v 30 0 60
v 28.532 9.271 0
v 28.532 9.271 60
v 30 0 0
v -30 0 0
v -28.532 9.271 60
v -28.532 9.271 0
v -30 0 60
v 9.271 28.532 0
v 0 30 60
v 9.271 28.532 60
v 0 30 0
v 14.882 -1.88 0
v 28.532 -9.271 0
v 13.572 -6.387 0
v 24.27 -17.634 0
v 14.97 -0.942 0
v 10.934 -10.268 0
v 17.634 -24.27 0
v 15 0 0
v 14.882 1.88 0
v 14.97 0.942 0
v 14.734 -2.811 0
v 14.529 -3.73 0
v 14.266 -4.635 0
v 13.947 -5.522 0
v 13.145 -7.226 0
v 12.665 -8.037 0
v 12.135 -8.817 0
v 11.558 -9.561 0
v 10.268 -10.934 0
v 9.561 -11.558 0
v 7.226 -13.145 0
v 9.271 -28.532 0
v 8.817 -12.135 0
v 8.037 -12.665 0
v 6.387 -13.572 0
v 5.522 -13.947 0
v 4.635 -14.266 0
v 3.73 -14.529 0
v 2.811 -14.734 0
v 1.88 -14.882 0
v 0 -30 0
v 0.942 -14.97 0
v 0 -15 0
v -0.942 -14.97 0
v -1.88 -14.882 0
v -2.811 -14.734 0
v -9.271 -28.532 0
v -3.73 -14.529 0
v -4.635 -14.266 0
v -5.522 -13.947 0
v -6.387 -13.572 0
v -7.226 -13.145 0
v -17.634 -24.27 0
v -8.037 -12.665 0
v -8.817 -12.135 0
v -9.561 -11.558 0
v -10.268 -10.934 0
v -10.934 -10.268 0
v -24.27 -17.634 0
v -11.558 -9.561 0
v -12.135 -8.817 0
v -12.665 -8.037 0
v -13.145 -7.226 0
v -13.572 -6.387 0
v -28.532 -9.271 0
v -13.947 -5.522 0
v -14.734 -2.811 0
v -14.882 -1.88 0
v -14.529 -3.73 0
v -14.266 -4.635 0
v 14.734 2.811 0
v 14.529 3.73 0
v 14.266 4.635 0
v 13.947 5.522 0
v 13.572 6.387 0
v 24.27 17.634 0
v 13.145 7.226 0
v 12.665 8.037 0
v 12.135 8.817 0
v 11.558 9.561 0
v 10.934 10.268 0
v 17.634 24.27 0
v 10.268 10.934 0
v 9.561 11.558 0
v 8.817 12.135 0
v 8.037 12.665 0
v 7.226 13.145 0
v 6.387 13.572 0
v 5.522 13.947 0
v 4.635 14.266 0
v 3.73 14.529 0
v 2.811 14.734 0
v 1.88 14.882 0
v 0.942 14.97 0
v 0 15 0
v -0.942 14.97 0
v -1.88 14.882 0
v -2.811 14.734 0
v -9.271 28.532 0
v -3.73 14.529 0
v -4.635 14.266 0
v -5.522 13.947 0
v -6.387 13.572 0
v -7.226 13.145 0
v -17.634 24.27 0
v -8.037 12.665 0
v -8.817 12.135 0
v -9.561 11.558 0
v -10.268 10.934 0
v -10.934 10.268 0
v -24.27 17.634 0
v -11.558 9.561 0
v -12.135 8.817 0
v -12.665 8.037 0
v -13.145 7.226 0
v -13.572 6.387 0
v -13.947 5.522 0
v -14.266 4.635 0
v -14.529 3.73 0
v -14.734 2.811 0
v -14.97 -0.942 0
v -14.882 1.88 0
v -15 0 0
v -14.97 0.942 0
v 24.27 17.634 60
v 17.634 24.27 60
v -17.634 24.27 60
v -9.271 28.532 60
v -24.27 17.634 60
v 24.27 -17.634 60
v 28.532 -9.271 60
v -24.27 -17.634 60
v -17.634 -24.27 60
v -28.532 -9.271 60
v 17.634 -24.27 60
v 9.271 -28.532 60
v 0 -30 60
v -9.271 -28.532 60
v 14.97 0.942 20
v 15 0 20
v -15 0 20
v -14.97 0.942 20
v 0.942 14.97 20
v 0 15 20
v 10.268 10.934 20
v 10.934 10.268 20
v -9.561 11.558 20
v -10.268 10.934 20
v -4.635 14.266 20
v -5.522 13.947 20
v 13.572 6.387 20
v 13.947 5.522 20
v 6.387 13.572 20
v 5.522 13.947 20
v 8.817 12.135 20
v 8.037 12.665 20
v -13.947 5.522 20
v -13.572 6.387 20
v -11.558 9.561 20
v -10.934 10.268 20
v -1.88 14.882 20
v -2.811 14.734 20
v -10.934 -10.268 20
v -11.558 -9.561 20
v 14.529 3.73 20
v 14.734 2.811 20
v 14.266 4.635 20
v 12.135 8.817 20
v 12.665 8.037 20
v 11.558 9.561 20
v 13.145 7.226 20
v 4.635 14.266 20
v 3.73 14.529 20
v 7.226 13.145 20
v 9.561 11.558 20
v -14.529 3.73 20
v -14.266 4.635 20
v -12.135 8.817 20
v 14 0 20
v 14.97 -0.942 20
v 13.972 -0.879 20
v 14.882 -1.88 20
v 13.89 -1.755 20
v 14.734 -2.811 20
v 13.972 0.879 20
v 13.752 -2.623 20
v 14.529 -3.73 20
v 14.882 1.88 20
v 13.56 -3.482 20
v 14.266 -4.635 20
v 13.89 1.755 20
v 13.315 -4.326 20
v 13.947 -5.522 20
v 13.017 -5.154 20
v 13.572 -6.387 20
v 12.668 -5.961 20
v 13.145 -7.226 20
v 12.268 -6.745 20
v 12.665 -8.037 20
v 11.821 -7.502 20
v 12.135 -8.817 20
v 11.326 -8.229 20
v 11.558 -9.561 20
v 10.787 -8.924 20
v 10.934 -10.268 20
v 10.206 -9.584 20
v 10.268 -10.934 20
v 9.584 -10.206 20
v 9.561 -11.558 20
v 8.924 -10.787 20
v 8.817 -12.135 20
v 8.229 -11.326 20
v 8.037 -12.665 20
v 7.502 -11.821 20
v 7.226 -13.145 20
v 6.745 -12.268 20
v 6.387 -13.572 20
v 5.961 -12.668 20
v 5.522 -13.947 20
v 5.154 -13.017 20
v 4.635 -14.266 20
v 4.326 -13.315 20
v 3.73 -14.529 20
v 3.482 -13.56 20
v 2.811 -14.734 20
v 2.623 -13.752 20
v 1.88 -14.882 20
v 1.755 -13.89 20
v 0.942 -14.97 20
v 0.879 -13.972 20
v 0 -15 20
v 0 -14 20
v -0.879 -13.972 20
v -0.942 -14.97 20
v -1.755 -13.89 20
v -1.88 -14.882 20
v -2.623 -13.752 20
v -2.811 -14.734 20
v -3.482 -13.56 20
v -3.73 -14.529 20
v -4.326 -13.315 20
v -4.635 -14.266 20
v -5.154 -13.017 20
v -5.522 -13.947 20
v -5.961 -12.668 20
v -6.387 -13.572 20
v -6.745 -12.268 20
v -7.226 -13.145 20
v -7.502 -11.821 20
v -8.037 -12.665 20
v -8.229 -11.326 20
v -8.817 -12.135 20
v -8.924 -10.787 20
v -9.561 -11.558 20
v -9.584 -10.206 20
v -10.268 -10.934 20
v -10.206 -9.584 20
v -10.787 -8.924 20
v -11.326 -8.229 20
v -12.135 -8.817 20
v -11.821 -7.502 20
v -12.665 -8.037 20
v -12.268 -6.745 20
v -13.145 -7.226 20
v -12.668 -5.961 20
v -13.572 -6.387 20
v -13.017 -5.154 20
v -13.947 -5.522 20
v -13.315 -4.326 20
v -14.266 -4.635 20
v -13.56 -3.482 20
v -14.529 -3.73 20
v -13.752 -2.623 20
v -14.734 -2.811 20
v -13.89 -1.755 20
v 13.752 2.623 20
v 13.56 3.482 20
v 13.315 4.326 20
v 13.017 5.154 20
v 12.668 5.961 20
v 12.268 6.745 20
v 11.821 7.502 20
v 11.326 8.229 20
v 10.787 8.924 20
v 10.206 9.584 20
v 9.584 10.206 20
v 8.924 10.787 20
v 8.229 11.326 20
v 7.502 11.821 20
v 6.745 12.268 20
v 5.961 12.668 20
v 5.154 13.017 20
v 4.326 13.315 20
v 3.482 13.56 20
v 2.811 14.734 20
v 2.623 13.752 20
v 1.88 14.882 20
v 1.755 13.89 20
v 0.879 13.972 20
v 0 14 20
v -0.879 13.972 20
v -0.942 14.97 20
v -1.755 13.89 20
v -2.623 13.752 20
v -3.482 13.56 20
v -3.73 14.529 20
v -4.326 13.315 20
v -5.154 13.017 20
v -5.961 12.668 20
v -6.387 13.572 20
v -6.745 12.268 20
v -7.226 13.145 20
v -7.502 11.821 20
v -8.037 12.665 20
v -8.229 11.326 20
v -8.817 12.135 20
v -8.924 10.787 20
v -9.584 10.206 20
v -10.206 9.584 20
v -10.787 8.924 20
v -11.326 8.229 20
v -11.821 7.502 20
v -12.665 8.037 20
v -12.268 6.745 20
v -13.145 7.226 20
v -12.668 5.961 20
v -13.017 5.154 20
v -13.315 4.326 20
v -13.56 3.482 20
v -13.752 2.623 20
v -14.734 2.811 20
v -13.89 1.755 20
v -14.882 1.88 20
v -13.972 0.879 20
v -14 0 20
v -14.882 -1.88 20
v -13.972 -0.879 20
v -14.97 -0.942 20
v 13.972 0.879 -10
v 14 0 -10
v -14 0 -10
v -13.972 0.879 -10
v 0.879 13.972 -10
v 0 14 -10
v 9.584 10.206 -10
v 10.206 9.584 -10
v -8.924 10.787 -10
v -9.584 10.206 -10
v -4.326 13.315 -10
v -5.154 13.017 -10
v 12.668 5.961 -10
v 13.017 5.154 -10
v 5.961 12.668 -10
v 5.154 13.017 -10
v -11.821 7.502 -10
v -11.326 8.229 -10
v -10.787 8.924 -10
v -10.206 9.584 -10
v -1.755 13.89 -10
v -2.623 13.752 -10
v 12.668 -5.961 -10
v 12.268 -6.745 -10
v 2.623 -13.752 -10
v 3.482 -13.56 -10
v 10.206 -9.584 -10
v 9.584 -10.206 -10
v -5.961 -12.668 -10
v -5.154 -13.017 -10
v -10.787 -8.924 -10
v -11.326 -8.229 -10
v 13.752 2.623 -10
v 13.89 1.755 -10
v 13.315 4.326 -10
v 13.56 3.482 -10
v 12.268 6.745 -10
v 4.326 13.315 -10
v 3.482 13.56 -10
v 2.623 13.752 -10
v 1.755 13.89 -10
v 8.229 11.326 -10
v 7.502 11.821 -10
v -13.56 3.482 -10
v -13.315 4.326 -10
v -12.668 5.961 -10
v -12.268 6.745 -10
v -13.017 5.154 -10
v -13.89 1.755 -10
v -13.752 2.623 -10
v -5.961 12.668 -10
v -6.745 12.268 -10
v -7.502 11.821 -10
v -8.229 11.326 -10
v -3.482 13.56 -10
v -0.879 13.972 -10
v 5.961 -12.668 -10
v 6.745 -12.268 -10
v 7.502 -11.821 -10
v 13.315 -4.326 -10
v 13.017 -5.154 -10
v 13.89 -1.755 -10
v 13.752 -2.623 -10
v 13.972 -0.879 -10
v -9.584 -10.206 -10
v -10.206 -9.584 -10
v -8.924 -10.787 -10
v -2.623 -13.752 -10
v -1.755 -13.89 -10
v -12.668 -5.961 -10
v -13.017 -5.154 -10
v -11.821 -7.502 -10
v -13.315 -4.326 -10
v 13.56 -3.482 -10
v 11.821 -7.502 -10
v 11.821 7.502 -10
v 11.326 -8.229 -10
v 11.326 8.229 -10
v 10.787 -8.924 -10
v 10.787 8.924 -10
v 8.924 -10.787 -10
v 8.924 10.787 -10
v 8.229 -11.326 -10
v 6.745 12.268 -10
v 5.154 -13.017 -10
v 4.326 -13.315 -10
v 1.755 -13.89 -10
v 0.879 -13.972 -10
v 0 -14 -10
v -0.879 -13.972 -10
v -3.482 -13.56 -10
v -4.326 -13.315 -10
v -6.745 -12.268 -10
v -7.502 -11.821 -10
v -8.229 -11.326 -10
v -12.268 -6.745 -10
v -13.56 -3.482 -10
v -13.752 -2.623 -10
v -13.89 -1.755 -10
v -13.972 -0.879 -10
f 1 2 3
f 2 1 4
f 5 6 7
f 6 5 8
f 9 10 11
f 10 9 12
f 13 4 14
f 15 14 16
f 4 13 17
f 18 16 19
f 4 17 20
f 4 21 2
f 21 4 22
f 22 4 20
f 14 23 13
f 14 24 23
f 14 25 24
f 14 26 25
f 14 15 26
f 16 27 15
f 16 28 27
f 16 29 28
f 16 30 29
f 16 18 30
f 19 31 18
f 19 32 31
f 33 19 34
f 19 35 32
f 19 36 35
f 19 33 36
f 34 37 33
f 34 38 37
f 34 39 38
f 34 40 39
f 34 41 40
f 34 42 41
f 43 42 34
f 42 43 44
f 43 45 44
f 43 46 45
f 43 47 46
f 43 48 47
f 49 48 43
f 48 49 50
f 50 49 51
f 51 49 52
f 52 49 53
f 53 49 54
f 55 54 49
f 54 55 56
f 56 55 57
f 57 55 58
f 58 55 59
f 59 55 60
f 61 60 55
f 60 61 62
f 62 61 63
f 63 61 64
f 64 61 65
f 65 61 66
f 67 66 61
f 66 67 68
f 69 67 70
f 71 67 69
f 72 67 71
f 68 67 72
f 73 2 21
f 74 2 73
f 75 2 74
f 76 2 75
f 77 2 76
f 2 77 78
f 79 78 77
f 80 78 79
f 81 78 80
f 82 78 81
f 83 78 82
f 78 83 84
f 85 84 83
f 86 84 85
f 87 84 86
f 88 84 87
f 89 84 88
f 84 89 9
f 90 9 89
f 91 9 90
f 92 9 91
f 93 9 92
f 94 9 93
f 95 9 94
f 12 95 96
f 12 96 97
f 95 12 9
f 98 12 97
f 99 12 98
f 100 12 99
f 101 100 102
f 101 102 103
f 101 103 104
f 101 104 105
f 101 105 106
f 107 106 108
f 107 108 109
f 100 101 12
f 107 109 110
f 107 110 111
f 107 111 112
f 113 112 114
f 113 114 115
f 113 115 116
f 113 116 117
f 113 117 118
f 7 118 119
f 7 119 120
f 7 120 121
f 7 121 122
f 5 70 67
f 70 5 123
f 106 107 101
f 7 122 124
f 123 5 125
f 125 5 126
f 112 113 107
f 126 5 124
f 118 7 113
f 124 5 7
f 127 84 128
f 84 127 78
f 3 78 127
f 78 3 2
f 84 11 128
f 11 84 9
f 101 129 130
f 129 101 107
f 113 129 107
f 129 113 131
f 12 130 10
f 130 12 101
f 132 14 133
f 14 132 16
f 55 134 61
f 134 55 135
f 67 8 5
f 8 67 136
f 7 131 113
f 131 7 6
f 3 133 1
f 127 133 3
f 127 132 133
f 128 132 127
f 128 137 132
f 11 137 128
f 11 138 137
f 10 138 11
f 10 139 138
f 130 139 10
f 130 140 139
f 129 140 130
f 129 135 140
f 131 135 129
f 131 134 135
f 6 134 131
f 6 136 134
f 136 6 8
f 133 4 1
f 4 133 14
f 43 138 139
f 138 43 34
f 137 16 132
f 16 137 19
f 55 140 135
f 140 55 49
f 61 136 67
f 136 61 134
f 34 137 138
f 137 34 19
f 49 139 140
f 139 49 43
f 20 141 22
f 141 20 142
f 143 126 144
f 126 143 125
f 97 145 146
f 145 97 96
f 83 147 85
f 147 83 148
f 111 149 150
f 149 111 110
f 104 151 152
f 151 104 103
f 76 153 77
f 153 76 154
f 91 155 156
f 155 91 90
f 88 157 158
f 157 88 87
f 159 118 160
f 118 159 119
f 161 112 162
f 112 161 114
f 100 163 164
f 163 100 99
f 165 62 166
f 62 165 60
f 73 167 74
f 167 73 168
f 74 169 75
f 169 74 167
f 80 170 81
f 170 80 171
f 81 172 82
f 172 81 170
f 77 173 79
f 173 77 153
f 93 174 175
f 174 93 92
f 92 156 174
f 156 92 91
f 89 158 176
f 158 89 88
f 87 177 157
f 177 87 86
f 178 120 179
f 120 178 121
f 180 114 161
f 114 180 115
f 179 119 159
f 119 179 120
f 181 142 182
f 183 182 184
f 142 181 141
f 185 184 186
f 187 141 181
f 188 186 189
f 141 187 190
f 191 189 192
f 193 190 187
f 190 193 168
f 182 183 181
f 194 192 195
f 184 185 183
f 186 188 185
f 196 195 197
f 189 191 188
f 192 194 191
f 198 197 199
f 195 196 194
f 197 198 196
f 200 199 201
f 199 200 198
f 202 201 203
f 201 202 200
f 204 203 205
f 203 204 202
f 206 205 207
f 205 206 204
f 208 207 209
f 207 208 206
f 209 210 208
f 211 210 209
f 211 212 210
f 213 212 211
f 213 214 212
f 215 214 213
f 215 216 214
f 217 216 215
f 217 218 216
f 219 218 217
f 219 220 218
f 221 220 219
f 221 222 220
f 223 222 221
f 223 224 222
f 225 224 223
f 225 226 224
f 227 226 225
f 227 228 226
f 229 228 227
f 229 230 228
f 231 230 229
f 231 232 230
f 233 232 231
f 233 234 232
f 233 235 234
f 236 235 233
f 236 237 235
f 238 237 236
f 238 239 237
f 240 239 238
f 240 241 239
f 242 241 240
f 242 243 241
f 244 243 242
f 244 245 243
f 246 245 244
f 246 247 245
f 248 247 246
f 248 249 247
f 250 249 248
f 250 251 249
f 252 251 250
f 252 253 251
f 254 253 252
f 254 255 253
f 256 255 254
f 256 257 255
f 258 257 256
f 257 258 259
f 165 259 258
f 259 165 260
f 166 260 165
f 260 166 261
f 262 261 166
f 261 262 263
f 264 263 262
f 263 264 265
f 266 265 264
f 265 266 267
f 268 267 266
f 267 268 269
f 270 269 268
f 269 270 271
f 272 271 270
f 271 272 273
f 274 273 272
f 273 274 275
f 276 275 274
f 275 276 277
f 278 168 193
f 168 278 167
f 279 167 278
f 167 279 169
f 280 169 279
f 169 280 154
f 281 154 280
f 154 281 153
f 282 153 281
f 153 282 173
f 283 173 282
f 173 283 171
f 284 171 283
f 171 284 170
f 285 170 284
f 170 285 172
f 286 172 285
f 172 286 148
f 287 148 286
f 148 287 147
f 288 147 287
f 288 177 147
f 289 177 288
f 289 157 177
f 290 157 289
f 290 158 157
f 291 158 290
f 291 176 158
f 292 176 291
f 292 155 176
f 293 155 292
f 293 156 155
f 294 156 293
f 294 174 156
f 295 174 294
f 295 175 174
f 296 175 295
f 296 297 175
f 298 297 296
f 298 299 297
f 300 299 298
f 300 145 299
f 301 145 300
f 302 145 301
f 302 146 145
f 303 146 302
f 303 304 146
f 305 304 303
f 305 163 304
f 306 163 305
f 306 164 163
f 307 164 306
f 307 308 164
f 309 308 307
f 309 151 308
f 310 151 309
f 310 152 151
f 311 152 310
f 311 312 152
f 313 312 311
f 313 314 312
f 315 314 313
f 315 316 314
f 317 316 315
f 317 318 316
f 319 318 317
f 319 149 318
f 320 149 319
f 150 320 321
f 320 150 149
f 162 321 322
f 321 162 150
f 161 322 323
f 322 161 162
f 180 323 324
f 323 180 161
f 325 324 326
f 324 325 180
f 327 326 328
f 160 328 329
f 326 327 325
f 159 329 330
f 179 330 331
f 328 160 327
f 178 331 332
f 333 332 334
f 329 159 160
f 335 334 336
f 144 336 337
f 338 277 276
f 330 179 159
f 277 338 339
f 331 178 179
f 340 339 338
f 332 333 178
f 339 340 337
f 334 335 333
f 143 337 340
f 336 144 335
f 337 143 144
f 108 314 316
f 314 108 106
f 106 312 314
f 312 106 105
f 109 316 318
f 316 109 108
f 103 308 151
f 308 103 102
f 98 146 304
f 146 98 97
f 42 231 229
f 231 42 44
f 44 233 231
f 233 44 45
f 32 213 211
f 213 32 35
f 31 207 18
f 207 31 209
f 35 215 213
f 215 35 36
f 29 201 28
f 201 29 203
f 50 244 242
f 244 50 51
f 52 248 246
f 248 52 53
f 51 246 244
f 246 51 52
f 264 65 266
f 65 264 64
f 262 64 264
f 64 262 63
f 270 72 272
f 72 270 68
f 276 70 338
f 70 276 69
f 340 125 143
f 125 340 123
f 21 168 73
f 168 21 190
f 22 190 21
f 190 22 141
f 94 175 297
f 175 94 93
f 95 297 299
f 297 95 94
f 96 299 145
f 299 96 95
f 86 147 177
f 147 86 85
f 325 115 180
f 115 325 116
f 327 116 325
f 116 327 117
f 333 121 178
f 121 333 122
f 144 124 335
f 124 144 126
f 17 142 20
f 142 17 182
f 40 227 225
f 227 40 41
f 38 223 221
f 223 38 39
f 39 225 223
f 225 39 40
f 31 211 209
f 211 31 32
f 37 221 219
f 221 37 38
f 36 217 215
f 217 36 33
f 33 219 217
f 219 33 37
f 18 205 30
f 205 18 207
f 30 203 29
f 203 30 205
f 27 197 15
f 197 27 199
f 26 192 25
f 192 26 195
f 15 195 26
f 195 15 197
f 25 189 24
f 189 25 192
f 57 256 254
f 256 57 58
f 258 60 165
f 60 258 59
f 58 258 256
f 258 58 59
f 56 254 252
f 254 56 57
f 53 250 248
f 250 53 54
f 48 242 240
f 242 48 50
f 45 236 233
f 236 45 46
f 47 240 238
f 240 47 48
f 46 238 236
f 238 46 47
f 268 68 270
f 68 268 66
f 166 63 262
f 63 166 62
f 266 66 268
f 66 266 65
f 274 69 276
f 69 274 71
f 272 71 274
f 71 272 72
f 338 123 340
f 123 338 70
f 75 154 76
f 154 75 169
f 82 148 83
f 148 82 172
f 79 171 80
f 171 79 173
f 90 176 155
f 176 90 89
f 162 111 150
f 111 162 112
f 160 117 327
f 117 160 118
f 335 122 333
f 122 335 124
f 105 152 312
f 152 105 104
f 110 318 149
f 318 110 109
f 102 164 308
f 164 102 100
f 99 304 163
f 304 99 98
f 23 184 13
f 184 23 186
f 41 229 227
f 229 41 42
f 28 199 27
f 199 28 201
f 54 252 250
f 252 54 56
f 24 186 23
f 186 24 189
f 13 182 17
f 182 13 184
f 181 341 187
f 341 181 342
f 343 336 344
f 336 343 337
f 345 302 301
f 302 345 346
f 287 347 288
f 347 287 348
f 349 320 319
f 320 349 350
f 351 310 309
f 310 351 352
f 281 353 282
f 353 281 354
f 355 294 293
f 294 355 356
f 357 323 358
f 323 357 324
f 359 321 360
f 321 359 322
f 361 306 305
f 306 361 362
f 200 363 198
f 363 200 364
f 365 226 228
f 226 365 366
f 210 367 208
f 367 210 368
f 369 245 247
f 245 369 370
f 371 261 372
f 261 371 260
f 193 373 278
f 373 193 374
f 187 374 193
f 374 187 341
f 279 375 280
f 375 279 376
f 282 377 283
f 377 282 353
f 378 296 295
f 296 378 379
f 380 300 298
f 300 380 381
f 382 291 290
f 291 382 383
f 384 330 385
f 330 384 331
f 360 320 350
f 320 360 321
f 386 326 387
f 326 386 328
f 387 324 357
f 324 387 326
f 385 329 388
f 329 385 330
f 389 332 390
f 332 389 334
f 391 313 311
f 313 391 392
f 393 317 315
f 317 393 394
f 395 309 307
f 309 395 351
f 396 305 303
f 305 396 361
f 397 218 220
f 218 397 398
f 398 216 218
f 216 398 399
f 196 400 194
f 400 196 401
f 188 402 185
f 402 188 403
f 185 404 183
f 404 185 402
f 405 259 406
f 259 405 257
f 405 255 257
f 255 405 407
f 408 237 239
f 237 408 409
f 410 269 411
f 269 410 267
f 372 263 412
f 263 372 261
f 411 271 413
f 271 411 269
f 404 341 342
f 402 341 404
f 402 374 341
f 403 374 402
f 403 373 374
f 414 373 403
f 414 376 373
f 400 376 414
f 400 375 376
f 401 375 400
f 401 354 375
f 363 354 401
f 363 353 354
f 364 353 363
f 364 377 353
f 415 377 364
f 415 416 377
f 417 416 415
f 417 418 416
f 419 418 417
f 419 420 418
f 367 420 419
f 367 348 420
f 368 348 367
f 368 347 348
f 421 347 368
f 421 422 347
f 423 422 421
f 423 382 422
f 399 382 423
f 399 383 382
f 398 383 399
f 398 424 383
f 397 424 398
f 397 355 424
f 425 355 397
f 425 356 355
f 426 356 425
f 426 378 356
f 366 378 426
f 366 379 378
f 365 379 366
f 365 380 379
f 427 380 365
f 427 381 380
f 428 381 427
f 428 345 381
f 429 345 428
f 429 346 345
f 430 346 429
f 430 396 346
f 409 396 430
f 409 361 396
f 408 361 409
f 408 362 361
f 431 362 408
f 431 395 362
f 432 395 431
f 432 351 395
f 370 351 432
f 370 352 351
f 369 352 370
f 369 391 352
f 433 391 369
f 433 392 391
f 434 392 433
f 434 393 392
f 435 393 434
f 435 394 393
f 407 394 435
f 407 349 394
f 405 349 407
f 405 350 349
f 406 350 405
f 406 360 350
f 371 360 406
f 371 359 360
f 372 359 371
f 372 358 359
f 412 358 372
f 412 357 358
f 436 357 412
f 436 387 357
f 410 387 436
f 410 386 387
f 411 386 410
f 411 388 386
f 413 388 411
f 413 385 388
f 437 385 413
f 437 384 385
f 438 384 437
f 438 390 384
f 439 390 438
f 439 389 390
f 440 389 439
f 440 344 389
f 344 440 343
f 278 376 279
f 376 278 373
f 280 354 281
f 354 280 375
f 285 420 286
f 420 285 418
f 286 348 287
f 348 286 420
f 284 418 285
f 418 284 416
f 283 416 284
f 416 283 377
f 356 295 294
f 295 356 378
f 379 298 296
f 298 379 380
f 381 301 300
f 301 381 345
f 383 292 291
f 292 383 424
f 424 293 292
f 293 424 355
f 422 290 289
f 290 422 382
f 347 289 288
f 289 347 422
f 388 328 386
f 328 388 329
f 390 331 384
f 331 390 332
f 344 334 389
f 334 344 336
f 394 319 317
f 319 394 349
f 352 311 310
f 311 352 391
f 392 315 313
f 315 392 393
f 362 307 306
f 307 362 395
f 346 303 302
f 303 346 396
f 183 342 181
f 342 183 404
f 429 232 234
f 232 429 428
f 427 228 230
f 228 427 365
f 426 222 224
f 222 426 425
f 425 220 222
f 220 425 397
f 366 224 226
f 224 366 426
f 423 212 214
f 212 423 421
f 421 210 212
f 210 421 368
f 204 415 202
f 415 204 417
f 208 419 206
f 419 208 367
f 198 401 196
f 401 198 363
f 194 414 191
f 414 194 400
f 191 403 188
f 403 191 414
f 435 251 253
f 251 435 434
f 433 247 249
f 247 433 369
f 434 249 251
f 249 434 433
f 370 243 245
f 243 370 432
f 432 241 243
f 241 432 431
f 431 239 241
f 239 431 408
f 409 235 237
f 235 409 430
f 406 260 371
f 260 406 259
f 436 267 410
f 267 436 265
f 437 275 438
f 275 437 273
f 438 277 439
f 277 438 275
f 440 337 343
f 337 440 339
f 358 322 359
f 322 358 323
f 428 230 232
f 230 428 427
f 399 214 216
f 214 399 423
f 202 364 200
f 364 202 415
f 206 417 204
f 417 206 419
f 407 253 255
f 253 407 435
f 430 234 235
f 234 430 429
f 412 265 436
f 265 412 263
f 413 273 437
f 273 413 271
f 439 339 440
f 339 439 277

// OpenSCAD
// Parameters
outer_diameter = 60;
outer_height = 60;
outer_facets = 20;

recess_diameter = 30;
recess_depth = 20;

inner_diameter = 28;
inner_height = 30;

// Main assembly
module large_outer_cylinder() {
    difference() {
        // Outer faceted cylinder
        cylinder(h = outer_height, d = outer_diameter, $fn = outer_facets);
        // Recess at the bottom
        translate([0, 0, 0])
            cylinder(h = recess_depth, d = recess_diameter, $fn = 100);
    }
}

module inner_inserted_cylinder() {
    // Inserted cylinder, partially inside the recess
    translate([0, 0, - (inner_height - recess_depth)])
        cylinder(h = inner_height, d = inner_diameter, $fn = 100);
}

// Assemble the model
union() {
    large_outer_cylinder();
    inner_inserted_cylinder();
}
